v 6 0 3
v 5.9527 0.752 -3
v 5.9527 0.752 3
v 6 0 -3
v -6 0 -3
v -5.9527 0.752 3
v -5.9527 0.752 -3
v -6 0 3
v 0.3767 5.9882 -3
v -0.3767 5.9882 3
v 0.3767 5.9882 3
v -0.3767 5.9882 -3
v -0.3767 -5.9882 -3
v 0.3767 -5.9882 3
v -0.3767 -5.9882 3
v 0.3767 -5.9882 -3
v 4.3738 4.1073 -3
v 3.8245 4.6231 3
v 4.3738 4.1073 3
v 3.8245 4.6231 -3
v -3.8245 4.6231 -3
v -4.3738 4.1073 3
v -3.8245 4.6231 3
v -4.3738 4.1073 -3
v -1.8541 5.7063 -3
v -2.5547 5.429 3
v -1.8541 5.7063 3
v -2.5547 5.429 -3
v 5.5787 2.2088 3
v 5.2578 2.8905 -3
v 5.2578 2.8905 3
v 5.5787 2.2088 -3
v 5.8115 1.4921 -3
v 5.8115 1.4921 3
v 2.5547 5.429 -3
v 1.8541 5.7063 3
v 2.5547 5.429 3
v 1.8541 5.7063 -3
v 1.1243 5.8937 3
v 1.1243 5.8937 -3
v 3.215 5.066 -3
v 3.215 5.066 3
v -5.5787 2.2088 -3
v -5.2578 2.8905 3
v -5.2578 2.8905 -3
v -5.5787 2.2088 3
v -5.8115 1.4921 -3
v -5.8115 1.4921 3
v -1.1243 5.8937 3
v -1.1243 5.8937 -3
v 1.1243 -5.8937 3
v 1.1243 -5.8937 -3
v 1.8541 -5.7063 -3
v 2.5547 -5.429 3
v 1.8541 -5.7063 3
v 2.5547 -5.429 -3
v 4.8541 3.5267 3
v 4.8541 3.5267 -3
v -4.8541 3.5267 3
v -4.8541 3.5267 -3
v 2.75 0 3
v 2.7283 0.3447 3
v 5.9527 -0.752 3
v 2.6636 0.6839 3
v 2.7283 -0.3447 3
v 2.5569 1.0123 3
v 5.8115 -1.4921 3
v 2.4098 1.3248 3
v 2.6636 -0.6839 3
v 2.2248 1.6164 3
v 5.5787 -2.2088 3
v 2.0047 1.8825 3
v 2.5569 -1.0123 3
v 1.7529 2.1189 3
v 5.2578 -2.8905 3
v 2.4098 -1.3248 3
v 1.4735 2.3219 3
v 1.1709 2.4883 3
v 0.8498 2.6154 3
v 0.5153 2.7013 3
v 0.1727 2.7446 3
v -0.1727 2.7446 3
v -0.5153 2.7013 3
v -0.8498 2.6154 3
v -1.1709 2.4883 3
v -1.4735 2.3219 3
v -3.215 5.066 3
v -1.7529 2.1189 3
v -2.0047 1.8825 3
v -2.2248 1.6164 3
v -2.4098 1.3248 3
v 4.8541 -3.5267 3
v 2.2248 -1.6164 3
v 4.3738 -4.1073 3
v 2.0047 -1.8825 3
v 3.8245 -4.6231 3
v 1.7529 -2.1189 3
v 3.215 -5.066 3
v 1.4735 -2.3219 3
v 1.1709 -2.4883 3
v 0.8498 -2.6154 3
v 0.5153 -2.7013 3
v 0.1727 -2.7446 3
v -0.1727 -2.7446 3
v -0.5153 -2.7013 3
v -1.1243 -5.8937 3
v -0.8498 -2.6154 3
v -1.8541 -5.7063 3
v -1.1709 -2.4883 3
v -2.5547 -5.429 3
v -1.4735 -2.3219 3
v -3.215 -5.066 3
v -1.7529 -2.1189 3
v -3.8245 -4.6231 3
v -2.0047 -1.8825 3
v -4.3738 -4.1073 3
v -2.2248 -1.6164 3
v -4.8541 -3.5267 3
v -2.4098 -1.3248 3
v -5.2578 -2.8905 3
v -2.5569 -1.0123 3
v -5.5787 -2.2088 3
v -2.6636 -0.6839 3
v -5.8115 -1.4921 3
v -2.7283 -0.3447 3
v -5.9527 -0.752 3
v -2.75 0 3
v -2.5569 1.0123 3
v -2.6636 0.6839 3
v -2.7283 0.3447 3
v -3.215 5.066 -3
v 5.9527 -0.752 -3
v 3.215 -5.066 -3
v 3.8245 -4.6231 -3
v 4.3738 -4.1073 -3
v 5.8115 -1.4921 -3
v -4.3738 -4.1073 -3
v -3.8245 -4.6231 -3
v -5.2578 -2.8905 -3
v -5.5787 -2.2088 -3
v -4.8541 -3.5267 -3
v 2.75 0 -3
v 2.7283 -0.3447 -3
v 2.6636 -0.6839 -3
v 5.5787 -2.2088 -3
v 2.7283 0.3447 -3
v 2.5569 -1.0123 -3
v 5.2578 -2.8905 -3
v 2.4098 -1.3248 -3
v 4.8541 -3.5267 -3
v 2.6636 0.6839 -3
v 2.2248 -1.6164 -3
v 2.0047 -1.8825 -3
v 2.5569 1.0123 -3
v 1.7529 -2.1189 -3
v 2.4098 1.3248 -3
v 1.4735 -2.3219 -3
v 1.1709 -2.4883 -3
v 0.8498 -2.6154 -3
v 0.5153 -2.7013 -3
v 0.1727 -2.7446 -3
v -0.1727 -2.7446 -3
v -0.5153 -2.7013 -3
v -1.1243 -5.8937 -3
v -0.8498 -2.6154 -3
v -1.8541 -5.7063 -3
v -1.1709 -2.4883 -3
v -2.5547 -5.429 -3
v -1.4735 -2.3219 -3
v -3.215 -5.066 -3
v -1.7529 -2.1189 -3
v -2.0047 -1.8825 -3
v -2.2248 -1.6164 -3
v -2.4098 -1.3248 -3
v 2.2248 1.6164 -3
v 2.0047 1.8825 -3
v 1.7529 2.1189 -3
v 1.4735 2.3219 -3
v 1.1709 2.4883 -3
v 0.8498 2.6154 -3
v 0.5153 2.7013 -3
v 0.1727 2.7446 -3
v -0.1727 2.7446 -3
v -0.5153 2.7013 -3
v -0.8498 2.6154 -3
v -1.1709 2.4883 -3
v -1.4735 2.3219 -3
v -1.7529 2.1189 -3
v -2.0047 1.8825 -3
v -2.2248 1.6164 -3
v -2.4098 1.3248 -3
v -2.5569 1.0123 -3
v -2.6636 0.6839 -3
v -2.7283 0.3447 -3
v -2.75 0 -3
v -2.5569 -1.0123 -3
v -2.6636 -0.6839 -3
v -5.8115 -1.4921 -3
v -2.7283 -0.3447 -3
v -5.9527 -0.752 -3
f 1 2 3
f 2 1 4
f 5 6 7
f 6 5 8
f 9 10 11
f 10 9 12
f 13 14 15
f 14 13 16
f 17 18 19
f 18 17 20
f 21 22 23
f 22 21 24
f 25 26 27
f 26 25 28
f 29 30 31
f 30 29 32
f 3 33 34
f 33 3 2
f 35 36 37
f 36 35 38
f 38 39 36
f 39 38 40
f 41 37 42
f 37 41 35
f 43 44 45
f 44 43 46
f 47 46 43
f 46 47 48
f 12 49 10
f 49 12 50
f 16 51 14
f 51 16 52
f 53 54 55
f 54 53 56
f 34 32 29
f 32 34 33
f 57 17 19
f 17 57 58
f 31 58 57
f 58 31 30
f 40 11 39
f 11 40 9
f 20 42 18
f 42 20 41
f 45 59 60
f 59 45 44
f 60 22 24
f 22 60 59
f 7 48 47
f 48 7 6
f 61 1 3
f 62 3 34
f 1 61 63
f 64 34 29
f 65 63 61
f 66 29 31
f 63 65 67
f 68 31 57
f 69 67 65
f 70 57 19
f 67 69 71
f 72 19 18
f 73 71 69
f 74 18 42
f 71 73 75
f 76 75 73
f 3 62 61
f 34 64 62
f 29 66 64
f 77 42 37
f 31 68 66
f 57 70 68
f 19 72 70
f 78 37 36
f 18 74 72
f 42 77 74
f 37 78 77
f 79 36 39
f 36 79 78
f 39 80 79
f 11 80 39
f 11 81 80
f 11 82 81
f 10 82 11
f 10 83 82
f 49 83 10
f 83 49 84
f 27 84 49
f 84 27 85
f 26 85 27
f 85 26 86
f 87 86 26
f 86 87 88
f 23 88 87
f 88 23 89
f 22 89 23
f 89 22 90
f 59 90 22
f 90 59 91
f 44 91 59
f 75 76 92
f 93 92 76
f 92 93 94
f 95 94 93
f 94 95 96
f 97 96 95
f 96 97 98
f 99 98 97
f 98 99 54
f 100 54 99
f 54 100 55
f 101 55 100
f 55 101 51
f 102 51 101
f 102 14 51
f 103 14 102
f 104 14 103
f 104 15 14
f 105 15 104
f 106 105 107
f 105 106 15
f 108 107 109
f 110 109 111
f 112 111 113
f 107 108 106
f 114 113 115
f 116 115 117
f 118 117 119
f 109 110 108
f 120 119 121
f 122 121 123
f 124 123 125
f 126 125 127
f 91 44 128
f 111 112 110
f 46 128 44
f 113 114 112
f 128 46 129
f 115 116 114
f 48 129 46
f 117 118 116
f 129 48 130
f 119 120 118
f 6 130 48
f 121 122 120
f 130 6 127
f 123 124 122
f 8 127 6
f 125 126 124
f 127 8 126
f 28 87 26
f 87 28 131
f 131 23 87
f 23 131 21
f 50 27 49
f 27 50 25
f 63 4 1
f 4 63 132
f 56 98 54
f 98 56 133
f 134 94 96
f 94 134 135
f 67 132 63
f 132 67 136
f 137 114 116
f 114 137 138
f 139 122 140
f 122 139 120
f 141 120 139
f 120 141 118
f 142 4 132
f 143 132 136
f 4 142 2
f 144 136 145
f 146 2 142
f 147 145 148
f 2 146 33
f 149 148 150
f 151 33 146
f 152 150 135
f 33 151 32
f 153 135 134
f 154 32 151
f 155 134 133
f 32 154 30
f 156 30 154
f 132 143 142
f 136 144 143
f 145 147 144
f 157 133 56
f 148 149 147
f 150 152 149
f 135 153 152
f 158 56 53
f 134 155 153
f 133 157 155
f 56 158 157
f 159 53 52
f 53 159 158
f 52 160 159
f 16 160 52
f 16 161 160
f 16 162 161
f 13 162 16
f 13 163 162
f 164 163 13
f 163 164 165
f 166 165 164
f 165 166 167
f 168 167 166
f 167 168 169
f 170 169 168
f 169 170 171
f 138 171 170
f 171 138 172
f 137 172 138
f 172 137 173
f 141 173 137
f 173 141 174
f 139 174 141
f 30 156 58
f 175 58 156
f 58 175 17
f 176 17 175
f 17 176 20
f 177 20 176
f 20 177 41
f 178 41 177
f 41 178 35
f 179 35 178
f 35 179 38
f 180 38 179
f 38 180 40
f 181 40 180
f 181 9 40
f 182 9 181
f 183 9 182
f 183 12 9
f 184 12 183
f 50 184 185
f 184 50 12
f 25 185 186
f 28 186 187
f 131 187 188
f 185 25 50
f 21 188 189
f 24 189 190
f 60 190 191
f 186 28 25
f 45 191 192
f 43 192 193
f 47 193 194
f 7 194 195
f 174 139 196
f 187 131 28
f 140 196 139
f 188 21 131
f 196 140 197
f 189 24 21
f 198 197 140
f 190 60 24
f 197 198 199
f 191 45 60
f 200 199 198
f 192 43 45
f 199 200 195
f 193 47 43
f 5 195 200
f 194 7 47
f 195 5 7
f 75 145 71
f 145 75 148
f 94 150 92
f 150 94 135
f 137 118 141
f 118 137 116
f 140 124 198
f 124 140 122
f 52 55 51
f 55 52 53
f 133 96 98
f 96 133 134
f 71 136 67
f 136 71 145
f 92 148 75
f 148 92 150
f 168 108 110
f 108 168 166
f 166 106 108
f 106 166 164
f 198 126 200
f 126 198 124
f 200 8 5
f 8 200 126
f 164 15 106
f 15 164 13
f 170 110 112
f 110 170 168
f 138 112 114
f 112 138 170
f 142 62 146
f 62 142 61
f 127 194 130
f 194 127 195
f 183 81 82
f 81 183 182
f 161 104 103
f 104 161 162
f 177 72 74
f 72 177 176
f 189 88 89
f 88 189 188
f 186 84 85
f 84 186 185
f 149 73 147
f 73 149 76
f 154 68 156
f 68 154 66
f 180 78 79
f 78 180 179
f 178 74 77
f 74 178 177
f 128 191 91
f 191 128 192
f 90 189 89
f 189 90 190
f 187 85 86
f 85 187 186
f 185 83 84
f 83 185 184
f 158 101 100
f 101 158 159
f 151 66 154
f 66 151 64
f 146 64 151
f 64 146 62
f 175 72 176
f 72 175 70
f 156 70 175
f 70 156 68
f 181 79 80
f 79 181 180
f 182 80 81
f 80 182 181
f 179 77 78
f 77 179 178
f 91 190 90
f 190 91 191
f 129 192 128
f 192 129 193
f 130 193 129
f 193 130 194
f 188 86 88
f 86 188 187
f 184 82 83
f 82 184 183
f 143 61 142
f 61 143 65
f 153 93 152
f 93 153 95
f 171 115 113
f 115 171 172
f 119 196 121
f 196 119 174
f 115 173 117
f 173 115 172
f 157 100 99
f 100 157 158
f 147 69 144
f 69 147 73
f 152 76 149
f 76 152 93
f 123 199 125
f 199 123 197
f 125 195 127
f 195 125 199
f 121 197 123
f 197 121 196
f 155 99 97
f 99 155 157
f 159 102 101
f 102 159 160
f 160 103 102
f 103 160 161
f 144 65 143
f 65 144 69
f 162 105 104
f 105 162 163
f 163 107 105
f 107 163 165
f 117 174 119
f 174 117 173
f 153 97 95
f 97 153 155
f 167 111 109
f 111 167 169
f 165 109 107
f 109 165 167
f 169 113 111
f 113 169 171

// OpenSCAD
$fn = 50;


difference() {
	union() {
		translate(v = [0, 0, -3.0000000000]) {
			cylinder(h = 6, r = 6.0000000000);
		}
	}
	union() {
		translate(v = [0, 0, -100.0000000000]) {
			cylinder(h = 200, r = 2.7500000000);
		}
	}
}
